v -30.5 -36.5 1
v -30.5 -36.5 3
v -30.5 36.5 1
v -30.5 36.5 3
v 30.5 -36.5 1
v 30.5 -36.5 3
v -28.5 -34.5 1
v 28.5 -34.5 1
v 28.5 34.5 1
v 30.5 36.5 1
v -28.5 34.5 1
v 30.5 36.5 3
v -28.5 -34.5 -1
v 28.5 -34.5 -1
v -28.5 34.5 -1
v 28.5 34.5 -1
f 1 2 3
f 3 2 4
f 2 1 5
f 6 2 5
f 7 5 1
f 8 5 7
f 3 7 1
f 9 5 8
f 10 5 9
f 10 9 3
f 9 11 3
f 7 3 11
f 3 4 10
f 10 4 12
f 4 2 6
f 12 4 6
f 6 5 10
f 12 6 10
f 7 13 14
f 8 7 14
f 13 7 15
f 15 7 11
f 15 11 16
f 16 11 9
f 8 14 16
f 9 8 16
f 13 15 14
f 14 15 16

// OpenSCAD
arduino_width = 57;
arduino_length = 69;
wall_thickness = 2;

cube([arduino_width,arduino_length,wall_thickness], center=true);

translate([0,0,wall_thickness]){
  cube([arduino_width+wall_thickness*2,arduino_length+wall_thickness*2,wall_thickness], center=true);
}
